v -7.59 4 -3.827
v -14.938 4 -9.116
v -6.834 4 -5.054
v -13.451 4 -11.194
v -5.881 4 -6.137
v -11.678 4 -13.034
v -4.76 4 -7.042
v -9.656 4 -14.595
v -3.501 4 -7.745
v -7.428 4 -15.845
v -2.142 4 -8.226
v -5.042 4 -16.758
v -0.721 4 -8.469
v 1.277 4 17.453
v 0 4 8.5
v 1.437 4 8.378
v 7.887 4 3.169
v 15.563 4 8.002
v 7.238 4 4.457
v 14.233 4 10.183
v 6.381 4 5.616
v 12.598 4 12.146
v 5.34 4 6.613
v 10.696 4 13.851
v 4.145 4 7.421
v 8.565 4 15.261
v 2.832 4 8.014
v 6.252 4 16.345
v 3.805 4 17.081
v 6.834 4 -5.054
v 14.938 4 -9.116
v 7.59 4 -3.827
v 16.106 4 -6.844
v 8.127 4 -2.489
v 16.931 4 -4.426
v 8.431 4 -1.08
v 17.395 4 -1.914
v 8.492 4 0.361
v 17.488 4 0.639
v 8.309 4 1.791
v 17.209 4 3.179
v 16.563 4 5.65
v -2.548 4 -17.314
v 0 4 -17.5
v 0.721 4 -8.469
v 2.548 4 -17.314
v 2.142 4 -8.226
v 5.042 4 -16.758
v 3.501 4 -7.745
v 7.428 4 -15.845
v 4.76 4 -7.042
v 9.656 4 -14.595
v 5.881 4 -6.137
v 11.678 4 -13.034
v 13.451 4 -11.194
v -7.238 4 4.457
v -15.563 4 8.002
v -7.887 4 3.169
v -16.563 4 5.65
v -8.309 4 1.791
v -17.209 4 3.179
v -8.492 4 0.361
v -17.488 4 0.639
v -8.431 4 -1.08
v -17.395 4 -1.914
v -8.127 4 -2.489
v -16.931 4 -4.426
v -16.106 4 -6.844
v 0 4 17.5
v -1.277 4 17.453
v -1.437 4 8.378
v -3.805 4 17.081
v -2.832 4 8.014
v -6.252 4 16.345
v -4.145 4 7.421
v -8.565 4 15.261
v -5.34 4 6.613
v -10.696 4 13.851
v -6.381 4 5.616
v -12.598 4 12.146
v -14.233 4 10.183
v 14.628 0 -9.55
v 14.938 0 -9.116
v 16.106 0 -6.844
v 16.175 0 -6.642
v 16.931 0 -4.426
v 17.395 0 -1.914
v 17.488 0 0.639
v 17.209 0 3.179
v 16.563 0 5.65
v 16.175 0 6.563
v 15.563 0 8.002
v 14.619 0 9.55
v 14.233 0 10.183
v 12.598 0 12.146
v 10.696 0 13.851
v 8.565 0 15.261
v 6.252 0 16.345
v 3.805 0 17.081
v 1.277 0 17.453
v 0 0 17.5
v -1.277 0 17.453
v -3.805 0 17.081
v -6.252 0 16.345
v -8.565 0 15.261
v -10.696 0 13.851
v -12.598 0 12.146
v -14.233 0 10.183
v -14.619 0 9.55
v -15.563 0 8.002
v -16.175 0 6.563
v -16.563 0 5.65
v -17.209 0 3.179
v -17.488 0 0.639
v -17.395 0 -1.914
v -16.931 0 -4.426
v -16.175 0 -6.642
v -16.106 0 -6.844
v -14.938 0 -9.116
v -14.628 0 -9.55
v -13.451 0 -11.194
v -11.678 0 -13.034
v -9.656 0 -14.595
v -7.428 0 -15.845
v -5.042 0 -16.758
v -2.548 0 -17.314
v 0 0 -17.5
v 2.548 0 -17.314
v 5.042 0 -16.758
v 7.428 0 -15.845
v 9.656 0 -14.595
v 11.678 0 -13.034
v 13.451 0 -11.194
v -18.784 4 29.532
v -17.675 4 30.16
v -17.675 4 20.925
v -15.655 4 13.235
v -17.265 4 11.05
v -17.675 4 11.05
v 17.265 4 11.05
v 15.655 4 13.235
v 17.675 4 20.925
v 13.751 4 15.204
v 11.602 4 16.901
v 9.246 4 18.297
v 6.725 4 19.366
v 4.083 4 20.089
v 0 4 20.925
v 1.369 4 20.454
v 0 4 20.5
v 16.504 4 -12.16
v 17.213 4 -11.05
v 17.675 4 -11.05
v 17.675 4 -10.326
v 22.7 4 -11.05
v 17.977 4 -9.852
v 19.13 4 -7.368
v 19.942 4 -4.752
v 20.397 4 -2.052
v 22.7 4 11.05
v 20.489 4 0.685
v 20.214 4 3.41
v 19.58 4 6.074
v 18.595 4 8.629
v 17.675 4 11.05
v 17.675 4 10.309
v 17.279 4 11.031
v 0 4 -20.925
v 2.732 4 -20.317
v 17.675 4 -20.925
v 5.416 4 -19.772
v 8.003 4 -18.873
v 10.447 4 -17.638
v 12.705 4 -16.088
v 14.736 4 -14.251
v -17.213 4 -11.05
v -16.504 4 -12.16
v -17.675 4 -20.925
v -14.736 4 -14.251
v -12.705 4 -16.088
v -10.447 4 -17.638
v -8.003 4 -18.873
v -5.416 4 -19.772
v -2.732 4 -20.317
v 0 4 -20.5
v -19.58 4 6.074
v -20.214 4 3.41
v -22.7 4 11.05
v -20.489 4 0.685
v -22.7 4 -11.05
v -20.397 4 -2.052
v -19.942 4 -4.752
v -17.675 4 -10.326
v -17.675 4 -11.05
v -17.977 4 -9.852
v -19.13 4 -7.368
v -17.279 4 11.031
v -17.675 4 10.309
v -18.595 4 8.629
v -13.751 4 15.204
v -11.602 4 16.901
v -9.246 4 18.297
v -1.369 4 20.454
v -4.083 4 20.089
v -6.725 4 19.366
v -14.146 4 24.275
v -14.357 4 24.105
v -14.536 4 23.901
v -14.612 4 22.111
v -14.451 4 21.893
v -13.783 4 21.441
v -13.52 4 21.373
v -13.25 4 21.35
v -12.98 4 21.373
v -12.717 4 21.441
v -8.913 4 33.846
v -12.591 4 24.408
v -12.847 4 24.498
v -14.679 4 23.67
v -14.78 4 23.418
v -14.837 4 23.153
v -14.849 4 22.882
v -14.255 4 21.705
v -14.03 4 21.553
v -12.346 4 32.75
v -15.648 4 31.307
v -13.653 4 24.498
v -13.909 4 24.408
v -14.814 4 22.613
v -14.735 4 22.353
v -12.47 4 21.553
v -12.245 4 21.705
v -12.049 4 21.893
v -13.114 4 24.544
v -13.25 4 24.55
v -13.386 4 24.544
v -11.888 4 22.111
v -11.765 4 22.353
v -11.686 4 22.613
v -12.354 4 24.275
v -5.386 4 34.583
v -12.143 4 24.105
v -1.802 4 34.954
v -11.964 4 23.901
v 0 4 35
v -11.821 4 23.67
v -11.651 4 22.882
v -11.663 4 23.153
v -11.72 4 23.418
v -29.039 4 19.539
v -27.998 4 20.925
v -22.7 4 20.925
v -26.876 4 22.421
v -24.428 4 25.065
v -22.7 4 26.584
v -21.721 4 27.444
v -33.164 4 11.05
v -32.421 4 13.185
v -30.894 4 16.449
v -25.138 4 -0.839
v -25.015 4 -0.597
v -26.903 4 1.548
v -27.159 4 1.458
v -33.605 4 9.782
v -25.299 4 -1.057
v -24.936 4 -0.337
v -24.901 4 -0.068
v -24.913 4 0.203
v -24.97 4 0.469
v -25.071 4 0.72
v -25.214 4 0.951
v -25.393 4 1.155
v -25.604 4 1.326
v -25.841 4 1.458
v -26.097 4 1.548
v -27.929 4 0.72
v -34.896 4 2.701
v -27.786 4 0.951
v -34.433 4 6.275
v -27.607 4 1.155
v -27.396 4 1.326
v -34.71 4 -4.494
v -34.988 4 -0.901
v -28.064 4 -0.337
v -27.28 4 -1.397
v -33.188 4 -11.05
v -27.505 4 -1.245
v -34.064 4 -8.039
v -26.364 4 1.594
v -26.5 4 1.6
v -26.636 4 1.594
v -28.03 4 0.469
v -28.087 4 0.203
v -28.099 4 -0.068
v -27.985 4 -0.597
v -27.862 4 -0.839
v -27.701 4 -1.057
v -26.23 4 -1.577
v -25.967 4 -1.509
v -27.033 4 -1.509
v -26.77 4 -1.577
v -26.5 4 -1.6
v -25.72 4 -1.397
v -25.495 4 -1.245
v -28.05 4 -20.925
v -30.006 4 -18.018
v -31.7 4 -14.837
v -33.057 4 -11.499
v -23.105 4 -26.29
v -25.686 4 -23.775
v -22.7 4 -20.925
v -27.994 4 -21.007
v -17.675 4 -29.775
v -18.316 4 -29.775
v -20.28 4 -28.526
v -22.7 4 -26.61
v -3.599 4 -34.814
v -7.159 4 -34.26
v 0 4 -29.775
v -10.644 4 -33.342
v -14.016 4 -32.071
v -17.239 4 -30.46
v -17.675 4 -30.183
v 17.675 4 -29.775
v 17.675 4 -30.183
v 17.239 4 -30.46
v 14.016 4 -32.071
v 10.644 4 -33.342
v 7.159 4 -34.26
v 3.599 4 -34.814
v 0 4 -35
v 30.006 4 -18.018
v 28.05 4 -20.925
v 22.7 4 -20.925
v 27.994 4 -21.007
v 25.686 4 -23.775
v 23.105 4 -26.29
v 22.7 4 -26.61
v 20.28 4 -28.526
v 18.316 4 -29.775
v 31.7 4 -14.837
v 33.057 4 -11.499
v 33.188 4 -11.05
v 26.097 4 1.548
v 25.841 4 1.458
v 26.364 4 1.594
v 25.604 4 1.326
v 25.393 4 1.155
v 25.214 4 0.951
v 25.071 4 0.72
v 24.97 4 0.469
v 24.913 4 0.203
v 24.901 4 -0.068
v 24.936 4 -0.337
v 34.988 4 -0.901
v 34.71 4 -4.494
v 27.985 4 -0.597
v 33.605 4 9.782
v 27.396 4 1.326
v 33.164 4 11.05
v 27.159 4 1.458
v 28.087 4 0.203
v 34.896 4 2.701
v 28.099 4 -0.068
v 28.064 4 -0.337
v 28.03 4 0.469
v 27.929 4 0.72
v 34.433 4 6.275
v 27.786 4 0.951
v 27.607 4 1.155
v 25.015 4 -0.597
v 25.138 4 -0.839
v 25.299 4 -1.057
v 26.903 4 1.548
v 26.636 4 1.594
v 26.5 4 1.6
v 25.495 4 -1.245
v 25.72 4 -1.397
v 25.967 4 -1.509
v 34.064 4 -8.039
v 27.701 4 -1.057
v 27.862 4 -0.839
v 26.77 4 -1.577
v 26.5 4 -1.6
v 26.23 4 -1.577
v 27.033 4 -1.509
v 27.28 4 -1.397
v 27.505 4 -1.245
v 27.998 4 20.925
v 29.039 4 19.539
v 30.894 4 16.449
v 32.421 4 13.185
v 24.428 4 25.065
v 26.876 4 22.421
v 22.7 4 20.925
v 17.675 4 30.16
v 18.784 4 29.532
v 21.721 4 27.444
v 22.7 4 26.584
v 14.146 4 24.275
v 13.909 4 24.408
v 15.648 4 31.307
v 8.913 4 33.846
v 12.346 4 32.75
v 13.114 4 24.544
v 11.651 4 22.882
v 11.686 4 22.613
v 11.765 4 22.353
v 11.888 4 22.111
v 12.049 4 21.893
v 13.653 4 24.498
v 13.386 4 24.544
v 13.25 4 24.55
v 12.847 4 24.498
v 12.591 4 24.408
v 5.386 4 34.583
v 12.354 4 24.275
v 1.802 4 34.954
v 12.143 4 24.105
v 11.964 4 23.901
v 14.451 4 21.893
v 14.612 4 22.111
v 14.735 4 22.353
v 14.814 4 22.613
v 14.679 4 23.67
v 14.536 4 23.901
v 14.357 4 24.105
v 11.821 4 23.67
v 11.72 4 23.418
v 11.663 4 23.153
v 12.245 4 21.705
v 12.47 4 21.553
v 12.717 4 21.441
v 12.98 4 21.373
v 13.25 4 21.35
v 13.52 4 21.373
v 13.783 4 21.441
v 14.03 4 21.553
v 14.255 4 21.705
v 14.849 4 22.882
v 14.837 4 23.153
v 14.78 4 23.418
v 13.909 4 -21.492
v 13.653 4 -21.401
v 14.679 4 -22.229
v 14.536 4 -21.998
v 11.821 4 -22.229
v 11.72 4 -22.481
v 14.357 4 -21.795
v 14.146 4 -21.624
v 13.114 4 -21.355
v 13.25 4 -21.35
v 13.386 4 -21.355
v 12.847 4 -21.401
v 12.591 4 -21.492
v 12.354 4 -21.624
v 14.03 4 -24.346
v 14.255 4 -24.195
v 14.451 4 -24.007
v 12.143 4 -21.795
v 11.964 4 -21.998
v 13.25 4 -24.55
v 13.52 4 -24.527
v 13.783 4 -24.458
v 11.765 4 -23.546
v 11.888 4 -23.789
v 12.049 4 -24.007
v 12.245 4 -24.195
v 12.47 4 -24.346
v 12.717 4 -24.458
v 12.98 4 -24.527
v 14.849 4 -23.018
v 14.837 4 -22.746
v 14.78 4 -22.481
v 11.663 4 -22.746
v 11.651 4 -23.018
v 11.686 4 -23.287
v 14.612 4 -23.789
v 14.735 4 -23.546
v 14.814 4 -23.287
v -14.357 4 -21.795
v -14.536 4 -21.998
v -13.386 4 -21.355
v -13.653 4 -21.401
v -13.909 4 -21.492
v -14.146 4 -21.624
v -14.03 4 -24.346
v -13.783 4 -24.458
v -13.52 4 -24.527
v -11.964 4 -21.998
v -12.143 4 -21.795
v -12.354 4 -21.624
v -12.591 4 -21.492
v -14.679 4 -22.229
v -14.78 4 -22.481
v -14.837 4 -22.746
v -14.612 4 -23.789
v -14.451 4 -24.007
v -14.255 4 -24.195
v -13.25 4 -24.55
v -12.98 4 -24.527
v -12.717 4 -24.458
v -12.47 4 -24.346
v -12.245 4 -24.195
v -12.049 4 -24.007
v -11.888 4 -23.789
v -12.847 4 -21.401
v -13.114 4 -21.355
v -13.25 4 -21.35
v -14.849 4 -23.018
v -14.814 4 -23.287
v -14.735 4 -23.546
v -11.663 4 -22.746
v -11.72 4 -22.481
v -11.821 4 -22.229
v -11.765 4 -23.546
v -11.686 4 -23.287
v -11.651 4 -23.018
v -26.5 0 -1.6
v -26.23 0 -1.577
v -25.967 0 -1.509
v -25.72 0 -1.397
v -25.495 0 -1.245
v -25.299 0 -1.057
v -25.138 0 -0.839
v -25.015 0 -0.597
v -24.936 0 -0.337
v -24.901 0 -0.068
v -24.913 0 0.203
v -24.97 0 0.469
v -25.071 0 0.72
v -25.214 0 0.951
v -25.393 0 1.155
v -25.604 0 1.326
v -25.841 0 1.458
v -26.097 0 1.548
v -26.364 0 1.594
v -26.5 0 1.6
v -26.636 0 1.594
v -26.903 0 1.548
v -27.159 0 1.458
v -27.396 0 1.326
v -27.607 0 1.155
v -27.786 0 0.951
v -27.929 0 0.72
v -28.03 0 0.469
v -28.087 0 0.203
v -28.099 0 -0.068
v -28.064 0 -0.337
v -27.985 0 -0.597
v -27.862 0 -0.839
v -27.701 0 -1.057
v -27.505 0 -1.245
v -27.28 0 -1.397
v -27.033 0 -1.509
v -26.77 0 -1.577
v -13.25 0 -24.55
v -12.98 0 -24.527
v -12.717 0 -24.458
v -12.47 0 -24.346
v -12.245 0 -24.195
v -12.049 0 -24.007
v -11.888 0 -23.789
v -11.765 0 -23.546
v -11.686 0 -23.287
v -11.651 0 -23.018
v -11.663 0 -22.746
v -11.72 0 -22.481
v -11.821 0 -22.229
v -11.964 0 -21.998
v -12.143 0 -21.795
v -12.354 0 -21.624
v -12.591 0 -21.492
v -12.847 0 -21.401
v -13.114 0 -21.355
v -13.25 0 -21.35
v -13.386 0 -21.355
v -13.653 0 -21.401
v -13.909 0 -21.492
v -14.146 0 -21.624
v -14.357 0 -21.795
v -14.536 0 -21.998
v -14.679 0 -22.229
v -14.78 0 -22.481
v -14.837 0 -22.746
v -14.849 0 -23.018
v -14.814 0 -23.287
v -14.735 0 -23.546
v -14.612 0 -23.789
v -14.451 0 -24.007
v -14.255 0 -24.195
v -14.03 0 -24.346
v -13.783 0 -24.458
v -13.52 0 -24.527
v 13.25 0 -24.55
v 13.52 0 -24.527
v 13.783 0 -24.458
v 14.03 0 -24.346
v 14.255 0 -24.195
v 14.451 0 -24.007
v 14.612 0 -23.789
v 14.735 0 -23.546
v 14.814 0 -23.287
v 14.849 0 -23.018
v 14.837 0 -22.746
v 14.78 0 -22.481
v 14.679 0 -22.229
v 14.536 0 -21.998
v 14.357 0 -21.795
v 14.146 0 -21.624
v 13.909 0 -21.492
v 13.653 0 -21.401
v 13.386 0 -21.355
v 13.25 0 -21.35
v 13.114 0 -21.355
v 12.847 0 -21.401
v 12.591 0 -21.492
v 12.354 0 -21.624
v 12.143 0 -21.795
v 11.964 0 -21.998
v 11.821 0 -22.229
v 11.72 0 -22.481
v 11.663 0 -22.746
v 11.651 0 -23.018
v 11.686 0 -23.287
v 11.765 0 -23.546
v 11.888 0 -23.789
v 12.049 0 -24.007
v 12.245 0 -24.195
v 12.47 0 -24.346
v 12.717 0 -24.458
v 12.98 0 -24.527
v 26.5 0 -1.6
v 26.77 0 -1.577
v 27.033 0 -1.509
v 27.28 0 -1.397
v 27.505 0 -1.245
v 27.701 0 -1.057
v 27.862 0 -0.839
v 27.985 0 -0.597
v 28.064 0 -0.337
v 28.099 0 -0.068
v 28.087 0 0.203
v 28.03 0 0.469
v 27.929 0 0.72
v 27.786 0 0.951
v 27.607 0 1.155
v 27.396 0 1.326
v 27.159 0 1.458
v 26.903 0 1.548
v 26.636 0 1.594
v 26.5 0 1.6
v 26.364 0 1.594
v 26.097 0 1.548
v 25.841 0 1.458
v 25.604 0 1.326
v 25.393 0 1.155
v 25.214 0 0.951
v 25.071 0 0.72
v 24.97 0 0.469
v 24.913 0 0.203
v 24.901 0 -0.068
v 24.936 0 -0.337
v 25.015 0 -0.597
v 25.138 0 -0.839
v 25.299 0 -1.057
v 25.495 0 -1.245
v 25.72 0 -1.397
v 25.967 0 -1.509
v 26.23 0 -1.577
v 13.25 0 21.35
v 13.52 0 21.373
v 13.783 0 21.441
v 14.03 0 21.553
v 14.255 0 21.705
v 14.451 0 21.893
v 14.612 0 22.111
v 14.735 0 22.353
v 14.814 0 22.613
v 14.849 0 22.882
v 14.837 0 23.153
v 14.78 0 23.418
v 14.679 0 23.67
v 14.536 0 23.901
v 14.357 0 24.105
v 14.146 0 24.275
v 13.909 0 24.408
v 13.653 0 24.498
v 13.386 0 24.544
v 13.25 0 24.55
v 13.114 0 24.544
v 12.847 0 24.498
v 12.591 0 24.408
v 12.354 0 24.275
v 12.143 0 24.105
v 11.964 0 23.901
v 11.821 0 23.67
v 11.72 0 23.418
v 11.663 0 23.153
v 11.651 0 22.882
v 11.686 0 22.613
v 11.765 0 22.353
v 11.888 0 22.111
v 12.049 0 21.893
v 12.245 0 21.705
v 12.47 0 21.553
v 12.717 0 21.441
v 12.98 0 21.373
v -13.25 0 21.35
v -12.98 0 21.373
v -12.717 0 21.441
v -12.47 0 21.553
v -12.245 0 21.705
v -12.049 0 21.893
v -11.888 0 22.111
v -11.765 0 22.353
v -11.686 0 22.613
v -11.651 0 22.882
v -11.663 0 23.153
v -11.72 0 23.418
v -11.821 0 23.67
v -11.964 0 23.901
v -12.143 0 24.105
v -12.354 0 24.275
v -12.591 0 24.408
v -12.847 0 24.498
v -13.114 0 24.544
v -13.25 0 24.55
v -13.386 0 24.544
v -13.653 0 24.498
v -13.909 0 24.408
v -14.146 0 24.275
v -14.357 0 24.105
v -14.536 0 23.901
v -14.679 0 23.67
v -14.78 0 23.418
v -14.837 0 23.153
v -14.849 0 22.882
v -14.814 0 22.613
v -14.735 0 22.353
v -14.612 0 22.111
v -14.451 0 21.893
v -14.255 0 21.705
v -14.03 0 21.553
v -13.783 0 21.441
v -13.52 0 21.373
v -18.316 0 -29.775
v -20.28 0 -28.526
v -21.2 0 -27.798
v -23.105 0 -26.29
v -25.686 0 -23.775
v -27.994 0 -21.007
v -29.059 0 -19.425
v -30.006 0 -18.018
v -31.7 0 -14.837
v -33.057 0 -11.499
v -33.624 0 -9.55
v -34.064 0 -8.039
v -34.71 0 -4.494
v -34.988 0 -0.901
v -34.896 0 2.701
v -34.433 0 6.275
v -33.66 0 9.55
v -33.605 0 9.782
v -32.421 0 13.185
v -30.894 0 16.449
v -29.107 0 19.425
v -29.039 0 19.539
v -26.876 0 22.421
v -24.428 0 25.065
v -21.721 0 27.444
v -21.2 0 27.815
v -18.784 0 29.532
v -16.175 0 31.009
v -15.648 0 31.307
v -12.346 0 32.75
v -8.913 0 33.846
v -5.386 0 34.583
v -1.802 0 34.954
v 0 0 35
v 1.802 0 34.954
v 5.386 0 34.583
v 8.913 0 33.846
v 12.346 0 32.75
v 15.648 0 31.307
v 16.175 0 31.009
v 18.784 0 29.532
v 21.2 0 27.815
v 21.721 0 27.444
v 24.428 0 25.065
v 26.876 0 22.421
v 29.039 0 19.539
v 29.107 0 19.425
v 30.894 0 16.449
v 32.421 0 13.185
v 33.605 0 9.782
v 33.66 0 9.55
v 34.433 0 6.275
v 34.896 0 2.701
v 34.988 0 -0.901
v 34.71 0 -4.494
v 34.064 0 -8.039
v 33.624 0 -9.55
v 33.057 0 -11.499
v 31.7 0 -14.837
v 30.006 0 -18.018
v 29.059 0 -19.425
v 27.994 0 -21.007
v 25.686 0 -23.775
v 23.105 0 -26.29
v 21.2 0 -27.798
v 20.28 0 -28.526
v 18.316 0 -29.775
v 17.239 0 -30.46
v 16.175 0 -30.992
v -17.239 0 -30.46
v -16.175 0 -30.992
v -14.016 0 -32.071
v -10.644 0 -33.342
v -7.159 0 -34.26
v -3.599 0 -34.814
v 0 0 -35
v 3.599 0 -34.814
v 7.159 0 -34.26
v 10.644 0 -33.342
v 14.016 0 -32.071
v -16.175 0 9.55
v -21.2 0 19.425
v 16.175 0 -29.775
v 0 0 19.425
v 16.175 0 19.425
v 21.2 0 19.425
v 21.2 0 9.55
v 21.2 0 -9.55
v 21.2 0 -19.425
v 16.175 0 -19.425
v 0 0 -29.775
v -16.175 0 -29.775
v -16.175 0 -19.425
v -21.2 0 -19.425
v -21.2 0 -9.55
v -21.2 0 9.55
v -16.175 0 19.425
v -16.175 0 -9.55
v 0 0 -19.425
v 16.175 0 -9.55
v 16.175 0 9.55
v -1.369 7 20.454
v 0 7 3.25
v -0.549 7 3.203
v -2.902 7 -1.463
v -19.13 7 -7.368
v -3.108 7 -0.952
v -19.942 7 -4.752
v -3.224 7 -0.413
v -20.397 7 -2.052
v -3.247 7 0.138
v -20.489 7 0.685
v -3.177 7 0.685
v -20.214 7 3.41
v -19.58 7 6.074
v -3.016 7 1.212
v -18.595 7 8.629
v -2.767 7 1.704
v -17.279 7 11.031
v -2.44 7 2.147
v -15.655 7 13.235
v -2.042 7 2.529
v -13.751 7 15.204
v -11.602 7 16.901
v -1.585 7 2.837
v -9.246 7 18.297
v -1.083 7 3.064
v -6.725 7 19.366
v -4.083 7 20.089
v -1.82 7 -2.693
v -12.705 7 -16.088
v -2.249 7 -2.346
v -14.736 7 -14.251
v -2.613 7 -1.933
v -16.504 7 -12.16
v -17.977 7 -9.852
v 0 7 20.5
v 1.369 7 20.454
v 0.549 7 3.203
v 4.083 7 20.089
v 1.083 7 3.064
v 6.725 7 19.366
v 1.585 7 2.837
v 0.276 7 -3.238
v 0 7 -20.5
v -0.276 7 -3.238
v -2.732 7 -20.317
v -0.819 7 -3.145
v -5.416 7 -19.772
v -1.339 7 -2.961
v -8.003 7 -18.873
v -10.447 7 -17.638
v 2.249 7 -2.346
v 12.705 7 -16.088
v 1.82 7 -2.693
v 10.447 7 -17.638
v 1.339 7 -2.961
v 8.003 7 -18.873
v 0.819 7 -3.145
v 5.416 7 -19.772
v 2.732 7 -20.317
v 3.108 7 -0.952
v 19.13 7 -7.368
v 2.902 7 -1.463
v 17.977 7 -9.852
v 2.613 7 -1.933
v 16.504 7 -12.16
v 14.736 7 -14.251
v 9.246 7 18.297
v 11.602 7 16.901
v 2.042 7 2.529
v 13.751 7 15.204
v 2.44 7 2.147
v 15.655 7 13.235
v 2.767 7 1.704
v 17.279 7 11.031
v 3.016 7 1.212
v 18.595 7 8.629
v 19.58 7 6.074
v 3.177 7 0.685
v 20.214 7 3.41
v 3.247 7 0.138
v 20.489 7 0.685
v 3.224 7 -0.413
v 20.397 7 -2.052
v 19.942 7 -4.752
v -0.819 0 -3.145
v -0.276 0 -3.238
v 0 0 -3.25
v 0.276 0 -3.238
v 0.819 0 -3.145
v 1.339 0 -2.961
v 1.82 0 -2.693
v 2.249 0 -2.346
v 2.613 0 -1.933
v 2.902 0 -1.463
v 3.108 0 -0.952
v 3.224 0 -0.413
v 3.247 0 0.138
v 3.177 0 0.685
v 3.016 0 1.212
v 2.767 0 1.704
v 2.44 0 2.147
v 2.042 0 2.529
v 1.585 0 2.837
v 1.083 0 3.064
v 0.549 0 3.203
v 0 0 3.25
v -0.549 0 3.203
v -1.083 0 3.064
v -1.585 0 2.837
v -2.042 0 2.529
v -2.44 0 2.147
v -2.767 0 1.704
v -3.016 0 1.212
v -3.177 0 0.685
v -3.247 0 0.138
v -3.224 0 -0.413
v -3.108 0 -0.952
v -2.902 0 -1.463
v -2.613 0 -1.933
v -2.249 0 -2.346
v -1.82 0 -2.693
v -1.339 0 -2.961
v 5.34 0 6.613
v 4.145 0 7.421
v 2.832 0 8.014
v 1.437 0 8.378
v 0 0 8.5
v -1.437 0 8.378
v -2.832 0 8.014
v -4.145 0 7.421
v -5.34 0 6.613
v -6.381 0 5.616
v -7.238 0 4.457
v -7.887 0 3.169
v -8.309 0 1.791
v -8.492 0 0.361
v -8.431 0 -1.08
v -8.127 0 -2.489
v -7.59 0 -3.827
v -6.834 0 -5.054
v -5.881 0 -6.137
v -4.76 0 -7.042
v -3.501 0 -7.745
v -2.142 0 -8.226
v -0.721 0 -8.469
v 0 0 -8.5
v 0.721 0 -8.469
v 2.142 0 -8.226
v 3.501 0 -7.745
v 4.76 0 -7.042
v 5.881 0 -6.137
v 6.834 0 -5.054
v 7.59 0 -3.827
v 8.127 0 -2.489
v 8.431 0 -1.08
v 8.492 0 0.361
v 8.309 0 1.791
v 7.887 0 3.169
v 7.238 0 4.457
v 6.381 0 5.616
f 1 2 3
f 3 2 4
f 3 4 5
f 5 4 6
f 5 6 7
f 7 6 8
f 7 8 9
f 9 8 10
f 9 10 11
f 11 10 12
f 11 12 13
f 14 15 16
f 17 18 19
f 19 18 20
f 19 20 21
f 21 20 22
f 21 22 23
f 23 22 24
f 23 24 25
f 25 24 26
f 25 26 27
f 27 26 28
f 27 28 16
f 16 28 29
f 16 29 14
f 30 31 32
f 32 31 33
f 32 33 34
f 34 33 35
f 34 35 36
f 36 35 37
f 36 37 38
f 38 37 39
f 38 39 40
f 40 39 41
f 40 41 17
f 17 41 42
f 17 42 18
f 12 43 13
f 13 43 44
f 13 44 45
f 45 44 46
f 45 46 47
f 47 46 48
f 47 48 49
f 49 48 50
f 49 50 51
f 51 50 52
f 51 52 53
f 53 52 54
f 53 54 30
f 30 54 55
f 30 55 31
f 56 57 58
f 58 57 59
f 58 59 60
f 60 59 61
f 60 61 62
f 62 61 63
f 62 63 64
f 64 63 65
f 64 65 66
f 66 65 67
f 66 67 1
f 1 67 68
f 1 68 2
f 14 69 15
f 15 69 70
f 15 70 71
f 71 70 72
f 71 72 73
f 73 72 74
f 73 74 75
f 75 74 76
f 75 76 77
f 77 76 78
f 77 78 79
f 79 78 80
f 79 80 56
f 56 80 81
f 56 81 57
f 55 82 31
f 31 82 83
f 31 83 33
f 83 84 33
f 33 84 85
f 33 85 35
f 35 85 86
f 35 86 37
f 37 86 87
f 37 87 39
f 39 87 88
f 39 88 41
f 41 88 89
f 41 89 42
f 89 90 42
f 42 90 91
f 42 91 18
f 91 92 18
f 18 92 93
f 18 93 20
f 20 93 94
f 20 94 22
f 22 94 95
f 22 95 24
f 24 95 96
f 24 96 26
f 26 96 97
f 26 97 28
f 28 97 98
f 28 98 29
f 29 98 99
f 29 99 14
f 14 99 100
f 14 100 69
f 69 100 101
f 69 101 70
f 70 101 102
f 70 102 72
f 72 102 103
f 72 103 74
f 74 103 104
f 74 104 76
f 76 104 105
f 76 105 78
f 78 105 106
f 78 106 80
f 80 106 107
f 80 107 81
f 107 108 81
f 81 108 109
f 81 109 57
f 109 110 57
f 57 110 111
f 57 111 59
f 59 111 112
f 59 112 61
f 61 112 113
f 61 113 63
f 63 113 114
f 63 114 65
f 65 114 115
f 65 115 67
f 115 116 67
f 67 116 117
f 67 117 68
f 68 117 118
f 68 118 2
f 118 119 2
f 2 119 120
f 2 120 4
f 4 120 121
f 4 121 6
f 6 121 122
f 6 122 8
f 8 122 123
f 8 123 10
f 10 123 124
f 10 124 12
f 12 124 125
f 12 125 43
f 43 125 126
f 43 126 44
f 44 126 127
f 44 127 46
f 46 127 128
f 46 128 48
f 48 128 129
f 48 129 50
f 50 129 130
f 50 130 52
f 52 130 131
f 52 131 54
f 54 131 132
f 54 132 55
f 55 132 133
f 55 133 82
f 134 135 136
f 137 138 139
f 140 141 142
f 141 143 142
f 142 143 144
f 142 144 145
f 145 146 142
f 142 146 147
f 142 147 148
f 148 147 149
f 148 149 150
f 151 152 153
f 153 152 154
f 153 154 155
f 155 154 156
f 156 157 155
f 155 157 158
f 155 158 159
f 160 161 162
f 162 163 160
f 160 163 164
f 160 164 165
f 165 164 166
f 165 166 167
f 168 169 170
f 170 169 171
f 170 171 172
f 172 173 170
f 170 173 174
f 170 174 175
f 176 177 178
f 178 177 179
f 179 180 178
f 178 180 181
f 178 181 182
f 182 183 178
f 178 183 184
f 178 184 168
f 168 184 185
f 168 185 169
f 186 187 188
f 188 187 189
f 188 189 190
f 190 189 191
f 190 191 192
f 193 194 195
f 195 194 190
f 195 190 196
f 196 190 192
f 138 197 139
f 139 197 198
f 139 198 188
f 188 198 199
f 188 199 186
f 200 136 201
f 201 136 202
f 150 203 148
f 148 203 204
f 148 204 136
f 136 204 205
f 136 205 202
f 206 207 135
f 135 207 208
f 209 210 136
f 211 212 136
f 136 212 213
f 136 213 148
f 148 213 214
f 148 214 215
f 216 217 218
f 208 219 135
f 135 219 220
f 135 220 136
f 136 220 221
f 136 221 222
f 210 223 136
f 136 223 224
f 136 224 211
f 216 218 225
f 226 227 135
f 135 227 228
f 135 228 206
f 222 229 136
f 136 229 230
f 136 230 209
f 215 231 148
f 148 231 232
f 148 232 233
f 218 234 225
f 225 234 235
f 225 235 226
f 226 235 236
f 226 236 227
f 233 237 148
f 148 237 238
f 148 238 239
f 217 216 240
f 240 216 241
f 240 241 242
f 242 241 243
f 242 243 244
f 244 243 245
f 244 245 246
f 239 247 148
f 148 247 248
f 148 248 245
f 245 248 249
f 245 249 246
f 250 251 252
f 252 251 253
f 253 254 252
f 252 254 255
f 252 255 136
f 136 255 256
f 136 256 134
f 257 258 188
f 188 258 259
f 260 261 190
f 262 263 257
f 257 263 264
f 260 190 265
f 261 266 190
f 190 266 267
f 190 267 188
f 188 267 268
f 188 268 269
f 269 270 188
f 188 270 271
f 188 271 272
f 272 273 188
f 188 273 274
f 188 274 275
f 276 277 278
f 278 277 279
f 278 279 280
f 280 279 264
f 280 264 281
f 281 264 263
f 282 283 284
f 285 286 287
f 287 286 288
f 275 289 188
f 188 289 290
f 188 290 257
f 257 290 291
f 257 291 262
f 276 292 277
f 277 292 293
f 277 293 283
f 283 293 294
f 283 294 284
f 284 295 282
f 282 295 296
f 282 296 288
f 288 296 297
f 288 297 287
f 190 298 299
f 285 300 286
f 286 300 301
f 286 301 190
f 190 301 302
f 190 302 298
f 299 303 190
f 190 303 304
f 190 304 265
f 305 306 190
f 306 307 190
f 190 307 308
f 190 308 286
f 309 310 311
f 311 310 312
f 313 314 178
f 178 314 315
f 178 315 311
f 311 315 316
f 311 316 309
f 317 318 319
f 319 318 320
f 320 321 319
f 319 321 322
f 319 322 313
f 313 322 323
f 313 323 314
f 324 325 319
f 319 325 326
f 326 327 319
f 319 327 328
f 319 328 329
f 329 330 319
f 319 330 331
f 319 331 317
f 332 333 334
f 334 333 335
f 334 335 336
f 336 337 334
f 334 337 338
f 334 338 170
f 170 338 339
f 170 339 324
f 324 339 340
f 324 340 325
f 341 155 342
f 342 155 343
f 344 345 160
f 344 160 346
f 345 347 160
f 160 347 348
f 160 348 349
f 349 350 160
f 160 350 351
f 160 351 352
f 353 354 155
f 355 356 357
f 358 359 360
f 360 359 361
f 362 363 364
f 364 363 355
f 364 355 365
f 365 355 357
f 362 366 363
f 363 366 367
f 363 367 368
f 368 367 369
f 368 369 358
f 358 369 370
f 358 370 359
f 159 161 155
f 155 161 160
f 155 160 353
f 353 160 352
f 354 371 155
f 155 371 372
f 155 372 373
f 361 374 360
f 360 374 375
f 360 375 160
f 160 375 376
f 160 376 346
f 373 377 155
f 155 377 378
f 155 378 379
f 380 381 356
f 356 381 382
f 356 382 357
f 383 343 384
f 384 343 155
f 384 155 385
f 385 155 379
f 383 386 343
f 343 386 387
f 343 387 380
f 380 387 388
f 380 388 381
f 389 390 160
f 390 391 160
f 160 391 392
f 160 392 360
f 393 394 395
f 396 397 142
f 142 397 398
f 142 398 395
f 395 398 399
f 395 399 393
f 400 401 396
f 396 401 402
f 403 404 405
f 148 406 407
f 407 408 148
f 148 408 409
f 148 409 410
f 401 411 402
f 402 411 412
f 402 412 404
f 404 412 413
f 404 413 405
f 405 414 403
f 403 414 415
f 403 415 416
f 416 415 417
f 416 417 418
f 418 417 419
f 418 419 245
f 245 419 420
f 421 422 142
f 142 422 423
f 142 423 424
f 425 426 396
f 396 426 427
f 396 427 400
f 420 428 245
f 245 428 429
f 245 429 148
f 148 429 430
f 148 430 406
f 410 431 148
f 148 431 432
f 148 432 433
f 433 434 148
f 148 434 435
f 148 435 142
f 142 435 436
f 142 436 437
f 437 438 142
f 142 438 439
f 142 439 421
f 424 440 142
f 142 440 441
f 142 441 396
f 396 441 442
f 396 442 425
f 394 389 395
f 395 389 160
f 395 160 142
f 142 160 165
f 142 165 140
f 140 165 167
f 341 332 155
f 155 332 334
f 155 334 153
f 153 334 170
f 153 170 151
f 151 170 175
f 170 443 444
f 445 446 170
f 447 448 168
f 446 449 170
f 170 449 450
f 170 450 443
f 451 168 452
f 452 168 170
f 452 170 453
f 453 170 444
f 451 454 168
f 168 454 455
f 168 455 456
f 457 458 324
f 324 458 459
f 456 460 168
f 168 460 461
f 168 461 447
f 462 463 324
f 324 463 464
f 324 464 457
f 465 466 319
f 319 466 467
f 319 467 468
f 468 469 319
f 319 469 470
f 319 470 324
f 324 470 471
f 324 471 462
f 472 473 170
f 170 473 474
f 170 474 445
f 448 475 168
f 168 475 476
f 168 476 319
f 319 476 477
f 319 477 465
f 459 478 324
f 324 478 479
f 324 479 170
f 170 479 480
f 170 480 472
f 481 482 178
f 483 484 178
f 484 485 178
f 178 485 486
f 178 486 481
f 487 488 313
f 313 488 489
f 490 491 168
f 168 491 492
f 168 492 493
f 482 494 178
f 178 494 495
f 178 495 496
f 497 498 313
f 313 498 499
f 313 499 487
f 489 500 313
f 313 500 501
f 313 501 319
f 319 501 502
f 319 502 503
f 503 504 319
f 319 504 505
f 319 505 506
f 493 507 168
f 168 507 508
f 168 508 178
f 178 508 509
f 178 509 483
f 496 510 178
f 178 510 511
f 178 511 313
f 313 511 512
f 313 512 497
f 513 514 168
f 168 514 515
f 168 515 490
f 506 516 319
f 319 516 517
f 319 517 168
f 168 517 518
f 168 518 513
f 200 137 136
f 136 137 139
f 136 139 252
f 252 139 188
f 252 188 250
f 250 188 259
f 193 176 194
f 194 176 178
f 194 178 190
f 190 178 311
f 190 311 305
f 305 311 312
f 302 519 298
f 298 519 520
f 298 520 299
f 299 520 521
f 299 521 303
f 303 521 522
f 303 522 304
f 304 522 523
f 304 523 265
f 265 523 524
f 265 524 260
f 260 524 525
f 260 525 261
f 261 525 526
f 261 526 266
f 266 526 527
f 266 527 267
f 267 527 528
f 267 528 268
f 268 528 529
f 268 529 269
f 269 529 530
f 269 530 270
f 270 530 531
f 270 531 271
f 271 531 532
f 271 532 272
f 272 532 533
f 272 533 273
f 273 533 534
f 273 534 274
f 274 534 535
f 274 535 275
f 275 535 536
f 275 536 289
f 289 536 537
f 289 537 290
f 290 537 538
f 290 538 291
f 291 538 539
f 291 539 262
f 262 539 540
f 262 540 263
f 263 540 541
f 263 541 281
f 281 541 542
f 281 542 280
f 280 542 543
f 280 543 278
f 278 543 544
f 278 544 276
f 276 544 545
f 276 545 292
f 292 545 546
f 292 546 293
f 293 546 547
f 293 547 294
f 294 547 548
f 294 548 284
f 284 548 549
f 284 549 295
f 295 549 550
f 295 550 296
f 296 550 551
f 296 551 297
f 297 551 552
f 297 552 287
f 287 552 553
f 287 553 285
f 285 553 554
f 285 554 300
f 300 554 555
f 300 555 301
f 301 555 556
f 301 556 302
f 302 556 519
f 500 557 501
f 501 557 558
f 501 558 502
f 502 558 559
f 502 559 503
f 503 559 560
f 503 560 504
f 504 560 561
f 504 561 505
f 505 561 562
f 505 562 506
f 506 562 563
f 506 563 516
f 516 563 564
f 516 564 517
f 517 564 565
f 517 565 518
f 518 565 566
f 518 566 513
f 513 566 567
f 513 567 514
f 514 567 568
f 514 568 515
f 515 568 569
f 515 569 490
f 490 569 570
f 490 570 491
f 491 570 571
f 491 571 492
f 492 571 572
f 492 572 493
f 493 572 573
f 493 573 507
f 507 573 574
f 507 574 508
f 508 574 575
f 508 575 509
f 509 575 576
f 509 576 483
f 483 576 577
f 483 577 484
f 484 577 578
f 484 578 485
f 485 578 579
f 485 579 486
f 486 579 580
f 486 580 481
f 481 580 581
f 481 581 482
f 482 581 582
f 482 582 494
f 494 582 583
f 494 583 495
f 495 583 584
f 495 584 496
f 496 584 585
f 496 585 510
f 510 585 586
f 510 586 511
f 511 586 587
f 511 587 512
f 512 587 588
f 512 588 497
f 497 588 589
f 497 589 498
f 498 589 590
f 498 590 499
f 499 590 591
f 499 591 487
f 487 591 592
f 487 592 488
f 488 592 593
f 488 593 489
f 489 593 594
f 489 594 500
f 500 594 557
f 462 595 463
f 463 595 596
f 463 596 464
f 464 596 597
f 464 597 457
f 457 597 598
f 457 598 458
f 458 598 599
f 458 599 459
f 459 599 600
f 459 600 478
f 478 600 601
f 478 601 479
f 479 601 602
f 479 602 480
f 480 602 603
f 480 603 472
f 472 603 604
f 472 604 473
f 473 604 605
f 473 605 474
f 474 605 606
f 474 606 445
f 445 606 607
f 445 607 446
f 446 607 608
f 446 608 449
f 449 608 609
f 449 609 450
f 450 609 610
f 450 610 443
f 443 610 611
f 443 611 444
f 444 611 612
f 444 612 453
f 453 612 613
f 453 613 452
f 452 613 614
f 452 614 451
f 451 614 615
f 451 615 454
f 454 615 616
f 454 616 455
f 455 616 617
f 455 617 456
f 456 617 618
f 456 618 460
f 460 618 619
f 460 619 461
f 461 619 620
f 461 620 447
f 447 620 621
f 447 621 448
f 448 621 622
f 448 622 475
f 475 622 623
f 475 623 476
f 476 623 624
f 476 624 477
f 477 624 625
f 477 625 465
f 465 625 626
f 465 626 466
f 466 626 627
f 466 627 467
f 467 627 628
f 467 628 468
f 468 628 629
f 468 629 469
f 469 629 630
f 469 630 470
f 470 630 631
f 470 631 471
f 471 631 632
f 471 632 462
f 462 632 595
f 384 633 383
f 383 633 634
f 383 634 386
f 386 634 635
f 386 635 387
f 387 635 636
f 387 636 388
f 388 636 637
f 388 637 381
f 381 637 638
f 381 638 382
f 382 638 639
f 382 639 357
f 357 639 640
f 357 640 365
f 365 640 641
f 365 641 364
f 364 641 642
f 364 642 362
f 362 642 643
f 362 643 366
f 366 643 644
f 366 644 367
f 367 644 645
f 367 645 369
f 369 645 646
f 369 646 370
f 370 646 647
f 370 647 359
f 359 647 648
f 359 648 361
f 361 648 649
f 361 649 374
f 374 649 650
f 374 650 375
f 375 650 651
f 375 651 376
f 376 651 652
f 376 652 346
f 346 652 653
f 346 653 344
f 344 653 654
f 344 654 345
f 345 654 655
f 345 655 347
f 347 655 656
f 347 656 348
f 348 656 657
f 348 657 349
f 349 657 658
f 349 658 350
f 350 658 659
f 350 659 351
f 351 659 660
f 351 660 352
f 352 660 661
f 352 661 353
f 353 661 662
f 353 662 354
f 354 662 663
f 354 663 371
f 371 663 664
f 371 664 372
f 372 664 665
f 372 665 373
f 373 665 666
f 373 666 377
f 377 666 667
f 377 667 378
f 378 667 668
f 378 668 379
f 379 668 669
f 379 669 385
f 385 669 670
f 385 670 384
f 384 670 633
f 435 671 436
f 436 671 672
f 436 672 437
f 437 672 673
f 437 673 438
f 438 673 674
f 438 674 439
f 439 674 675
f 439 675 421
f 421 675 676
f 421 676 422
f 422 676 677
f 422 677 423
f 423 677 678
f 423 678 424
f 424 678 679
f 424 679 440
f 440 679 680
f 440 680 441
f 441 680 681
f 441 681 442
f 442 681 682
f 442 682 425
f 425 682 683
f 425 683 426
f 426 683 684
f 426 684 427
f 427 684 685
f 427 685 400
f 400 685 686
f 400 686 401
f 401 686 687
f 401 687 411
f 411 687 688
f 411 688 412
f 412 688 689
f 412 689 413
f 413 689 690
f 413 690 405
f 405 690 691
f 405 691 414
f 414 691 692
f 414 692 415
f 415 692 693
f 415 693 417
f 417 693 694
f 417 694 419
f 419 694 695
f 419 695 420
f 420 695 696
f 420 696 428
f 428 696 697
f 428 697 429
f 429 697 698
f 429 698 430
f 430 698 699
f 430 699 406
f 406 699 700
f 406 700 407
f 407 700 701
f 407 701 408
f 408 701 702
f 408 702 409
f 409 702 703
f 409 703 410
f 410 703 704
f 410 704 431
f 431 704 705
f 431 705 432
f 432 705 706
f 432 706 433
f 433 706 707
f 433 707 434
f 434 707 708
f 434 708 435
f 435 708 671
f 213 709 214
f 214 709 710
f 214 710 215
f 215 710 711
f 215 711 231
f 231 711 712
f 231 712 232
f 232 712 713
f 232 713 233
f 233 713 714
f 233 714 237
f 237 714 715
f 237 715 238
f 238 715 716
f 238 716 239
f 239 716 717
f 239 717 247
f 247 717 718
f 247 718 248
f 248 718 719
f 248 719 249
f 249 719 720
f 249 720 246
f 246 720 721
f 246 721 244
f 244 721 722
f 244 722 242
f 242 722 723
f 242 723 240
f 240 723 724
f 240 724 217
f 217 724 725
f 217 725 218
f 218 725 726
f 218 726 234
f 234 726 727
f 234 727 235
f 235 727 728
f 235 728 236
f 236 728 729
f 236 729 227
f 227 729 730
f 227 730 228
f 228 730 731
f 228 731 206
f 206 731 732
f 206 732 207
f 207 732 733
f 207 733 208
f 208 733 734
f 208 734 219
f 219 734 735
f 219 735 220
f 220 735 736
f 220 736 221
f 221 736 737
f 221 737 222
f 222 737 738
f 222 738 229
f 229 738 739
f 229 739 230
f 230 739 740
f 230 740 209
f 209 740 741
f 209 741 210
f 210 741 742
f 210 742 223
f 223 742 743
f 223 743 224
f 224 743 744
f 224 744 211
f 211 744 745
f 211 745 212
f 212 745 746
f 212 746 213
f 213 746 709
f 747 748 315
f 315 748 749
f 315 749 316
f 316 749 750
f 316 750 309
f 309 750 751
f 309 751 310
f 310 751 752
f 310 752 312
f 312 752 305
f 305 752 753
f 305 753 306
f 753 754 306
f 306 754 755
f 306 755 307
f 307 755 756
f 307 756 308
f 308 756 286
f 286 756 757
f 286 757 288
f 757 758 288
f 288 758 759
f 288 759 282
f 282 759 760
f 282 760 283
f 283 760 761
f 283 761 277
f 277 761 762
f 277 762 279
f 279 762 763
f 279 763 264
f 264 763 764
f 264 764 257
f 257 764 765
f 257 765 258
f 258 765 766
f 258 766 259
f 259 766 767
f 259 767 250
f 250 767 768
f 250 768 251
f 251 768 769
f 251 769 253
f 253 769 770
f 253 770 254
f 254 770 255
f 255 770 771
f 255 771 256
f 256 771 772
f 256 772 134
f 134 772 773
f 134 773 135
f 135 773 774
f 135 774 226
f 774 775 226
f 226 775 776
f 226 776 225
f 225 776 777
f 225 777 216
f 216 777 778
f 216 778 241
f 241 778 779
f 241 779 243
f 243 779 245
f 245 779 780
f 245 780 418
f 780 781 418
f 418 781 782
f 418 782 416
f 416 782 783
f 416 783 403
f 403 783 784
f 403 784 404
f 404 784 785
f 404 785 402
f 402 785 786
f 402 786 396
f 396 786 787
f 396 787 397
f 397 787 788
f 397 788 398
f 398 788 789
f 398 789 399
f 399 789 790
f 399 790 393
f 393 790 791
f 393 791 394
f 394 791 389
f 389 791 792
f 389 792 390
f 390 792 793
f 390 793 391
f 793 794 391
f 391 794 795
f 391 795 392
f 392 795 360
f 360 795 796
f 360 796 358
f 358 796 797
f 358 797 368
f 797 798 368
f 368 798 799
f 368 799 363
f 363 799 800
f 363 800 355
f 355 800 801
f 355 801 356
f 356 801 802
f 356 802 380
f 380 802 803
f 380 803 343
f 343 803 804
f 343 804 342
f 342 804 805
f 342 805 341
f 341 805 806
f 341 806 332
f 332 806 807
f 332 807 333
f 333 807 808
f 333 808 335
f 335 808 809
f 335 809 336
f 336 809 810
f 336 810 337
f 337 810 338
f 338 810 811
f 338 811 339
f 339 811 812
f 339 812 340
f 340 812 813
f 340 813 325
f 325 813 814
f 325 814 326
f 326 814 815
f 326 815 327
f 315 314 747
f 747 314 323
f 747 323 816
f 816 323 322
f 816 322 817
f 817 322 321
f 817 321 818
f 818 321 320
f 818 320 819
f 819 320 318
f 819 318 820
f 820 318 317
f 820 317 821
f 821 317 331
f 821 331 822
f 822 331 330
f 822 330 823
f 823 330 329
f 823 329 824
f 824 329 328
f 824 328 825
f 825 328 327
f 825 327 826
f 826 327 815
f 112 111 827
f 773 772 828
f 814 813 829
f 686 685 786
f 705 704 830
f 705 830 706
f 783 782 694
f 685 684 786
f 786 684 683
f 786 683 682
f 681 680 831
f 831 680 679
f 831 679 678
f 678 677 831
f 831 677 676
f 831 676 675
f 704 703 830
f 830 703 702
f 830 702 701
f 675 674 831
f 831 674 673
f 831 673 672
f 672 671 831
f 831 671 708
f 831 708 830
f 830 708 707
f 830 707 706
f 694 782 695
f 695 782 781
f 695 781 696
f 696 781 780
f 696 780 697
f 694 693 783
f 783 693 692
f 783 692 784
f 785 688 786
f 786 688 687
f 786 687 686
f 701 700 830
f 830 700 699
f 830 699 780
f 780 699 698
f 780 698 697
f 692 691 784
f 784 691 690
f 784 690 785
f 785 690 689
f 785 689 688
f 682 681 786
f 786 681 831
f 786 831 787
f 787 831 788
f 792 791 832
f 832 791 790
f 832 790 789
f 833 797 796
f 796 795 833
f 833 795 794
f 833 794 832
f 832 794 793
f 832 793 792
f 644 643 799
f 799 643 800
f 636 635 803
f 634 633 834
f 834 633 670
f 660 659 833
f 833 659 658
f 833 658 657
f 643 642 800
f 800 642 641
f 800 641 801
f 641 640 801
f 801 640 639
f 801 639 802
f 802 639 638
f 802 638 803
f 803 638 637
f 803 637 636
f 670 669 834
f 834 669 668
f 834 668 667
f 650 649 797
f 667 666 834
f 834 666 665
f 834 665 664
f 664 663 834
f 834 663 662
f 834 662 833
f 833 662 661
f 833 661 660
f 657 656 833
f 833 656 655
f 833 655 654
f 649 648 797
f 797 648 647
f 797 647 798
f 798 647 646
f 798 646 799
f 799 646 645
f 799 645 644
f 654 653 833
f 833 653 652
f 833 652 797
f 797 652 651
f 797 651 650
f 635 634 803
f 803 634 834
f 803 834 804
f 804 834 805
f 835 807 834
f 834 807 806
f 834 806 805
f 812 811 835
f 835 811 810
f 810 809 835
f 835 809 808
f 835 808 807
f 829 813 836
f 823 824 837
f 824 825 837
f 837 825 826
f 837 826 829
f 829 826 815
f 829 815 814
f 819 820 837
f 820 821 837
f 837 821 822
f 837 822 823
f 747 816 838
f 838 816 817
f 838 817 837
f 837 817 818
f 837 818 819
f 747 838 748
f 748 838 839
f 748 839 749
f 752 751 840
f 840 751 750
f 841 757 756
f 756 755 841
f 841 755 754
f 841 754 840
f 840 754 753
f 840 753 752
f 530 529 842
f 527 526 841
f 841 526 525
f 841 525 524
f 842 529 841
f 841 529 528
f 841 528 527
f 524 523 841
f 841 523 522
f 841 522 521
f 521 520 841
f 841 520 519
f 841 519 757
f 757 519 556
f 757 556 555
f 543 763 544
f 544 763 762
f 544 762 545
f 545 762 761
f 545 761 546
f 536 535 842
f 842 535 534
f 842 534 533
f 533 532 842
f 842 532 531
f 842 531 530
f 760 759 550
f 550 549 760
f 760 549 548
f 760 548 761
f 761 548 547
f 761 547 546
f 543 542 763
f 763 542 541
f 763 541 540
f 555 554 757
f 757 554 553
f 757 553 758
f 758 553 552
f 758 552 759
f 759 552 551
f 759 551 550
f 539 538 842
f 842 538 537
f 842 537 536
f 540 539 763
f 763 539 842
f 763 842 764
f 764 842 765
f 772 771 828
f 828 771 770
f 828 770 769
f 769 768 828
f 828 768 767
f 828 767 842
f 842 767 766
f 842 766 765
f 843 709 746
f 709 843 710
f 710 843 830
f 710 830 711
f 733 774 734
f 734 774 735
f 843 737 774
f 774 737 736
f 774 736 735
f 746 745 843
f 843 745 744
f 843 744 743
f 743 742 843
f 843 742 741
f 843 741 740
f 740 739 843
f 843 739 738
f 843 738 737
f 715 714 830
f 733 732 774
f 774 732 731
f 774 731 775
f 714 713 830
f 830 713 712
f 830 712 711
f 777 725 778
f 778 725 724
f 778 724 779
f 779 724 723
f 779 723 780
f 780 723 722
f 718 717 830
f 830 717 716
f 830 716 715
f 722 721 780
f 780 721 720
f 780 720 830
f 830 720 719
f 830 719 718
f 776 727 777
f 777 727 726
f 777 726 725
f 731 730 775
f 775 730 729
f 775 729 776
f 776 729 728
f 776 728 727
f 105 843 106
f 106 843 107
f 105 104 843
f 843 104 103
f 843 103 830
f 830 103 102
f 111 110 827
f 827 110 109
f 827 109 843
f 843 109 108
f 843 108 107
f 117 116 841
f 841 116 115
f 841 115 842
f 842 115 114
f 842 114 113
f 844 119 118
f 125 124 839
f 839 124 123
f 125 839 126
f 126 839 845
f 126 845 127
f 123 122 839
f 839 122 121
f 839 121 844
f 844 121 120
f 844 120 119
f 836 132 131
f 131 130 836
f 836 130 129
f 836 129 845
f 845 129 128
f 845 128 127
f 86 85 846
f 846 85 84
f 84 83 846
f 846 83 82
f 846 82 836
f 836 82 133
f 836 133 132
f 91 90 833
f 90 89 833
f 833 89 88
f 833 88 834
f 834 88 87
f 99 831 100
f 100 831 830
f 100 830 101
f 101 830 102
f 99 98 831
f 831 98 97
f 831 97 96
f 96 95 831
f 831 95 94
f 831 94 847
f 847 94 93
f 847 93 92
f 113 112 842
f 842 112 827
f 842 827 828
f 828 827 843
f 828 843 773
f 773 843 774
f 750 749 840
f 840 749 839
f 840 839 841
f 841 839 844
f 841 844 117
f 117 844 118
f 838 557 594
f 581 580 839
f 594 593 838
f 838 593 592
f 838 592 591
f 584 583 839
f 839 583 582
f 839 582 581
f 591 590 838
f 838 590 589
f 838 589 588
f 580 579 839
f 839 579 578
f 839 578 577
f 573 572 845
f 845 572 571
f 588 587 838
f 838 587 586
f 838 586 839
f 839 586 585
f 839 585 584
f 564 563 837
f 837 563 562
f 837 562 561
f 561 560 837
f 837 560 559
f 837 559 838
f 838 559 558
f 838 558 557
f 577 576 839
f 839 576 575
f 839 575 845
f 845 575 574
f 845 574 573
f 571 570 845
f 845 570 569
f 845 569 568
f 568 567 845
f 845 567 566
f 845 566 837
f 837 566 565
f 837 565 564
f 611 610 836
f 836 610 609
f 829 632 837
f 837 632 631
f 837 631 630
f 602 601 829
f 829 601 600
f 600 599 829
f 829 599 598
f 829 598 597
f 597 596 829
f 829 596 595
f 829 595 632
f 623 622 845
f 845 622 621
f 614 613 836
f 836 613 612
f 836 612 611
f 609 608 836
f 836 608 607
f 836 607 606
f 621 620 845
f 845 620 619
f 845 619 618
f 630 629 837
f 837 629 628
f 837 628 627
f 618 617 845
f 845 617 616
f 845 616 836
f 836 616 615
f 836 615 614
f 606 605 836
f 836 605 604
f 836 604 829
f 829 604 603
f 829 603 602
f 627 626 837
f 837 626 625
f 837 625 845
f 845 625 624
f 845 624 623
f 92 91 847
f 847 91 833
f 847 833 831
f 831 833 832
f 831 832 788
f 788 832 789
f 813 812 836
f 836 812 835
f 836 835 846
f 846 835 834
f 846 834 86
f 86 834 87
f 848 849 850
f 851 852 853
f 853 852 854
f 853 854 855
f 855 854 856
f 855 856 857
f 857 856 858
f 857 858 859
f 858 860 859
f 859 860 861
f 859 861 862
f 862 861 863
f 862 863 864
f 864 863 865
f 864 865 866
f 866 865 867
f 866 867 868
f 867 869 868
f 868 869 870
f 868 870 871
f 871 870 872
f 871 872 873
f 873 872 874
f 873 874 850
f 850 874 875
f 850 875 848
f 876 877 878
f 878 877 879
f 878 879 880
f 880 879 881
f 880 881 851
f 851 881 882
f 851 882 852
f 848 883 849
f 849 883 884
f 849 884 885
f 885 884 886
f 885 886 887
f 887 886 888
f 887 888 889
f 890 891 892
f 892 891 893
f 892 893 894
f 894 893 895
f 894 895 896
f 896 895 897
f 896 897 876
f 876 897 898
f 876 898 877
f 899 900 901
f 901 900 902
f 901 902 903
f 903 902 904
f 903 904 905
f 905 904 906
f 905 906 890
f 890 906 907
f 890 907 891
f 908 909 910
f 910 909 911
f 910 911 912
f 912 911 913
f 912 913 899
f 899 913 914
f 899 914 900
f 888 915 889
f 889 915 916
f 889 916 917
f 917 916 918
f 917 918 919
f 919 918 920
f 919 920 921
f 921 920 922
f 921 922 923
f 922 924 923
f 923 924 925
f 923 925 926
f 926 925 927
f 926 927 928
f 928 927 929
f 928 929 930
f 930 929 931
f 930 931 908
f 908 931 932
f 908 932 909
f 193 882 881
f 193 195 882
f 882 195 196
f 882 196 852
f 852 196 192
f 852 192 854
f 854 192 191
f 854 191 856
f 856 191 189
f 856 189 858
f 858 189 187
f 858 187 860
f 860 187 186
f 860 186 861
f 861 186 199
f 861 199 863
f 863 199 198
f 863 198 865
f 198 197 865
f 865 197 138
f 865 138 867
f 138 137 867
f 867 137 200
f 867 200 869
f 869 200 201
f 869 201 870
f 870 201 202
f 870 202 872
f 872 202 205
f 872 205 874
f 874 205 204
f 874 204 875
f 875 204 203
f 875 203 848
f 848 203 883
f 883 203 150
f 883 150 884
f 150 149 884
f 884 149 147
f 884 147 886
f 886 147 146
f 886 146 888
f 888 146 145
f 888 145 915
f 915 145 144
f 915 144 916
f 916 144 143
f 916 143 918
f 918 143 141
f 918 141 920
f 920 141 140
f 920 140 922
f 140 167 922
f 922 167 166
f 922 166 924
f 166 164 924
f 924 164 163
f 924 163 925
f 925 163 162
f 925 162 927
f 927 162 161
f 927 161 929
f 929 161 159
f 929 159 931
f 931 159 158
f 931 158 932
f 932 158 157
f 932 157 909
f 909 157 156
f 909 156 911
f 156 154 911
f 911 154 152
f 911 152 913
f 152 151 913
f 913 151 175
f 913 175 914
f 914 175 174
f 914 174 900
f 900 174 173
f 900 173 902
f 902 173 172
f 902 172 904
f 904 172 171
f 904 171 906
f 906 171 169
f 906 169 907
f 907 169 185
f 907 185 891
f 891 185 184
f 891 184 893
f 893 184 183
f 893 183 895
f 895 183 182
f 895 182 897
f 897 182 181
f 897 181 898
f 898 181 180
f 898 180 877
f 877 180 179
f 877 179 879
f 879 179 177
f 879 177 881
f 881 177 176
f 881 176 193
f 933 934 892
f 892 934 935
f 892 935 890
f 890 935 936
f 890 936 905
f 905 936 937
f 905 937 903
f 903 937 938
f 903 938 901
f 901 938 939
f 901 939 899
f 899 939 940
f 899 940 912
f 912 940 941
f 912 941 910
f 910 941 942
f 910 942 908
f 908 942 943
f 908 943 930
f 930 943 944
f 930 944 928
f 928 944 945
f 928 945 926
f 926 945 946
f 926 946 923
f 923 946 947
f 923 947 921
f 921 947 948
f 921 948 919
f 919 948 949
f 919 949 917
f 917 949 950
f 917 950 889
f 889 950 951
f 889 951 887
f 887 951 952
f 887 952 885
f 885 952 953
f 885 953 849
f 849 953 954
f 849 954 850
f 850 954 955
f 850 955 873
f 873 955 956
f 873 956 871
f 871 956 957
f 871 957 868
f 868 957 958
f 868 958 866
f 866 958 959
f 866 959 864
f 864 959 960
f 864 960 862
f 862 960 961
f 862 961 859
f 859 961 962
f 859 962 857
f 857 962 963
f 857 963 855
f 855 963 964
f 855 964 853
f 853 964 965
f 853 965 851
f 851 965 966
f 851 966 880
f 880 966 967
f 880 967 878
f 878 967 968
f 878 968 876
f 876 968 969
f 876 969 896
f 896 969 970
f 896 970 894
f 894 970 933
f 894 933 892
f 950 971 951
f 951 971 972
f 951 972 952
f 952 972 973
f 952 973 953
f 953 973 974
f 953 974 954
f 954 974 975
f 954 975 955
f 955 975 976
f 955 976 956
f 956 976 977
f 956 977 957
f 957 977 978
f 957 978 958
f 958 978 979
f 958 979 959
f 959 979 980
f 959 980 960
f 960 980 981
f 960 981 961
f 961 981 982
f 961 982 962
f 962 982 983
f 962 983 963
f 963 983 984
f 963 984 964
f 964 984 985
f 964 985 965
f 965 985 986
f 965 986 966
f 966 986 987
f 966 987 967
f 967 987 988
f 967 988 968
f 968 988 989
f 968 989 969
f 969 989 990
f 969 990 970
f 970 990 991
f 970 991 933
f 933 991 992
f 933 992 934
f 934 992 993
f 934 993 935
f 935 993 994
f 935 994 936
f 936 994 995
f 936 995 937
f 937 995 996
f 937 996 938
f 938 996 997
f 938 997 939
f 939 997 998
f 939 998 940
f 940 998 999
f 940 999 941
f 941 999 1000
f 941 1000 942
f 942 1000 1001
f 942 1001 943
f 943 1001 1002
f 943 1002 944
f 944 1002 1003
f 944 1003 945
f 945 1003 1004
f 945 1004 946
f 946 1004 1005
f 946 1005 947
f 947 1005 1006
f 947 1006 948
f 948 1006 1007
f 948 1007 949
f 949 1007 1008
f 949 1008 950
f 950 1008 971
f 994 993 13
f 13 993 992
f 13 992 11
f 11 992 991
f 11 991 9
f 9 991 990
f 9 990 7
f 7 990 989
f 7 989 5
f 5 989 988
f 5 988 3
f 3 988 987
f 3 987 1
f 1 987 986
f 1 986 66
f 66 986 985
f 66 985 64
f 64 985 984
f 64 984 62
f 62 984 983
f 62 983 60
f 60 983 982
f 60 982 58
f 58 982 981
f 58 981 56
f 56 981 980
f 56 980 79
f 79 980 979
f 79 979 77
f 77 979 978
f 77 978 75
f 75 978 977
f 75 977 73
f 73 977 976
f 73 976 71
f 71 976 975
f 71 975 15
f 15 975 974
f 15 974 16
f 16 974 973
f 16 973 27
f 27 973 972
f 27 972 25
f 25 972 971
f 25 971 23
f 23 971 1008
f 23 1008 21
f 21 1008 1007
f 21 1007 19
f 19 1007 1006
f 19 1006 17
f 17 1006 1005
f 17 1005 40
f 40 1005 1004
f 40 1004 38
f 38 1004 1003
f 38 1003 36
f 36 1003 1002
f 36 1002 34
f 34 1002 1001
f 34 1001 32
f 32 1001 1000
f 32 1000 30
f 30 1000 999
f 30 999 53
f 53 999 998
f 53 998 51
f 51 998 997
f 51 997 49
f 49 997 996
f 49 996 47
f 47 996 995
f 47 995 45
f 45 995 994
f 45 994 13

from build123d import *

# Parameters (mm, degrees)
SKETCH_1_R      = 35
SKETCH_1_R_2    = 1.6
SKETCH_1_R_3    = 17.5
EXTRUDE_1_DEPTH = 4
SKETCH_2_R      = 20.5
SKETCH_2_R_2    = 17.5
EXTRUDE_2_DEPTH = 3
EXTRUDE_START   = -3
SKETCH_3_R      = 17.5
SKETCH_3_R_2    = 3.25
EXTRUDE_3_DEPTH = 3
EXTRUDE_START_2 = 4
SKETCH_4_R      = 8.5
SKETCH_4_R_2    = 3.25
EXTRUDE_4_DEPTH = 4


with BuildPart() as part:
    # Эскиз1 → Бобышка-Вытянуть1 (new body)
    with BuildSketch(Plane(origin=(0, 0, 0), x_dir=(1, 0, 0), z_dir=(0, 1, 0))):
        with Locations(Location((0, 0, 0), (0, 0, 270))):
            Circle(SKETCH_1_R)
        with Locations(Location((-13.25, -22.9496732, 0), (0, 0, 270))):
            Circle(SKETCH_1_R_2, mode=Mode.SUBTRACT)
        with Locations(Location((13.25, -22.9496732, 0), (0, 0, 270))):
            Circle(SKETCH_1_R_2, mode=Mode.SUBTRACT)
        with Locations(Location((26.5, 0, 0), (0, 0, 270))):
            Circle(SKETCH_1_R_2, mode=Mode.SUBTRACT)
        with Locations(Location((13.25, 22.9496732, 0), (0, 0, 270))):
            Circle(SKETCH_1_R_2, mode=Mode.SUBTRACT)
        with Locations(Location((-13.25, 22.9496732, 0), (0, 0, 270))):
            Circle(SKETCH_1_R_2, mode=Mode.SUBTRACT)
        with Locations(Location((-26.5, 0, 0), (0, 0, 270))):
            Circle(SKETCH_1_R_2, mode=Mode.SUBTRACT)
        with Locations(Location((0, 0, 0), (0, 0, 270))):
            Circle(SKETCH_1_R_3, mode=Mode.SUBTRACT)
    extrude(amount=EXTRUDE_1_DEPTH)

    # Эскиз2 → Бобышка-Вытянуть2 (add)
    with BuildSketch(Plane(origin=(0, 4, 0), x_dir=(1, 0, 0), z_dir=(0, 1, 0))):
        with Locations(Location((0, 0, 0), (0, 0, 270))):
            Circle(SKETCH_2_R)
        with Locations(Location((0, 0, 0), (0, 0, 270))):
            Circle(SKETCH_2_R_2, mode=Mode.SUBTRACT)
    extrude(amount=EXTRUDE_2_DEPTH)

    # Эскиз3 → Бобышка-Вытянуть3 (add)
    with BuildSketch(Plane(origin=(0, 7, 0), x_dir=(1, 0, 0), z_dir=(0, 1, 0)).offset(EXTRUDE_START)):
        with Locations(Location((0, 0, 0), (0, 0, 270))):
            Circle(SKETCH_3_R)
        with Locations(Location((0, 0, 0), (0, 0, 270))):
            Circle(SKETCH_3_R_2, mode=Mode.SUBTRACT)
    extrude(amount=EXTRUDE_3_DEPTH)

    # Эскиз4 → Бобышка-Вытянуть4 (add)
    with BuildSketch(Plane.XZ.offset(-4).offset(EXTRUDE_START_2)):
        with Locations(Location((0, 0, 0), (0, 0, 90))):
            Circle(SKETCH_4_R)
        with Locations(Location((0, 0, 0), (0, 0, 90))):
            Circle(SKETCH_4_R_2, mode=Mode.SUBTRACT)
    extrude(amount=-EXTRUDE_4_DEPTH)


solid = part.part
